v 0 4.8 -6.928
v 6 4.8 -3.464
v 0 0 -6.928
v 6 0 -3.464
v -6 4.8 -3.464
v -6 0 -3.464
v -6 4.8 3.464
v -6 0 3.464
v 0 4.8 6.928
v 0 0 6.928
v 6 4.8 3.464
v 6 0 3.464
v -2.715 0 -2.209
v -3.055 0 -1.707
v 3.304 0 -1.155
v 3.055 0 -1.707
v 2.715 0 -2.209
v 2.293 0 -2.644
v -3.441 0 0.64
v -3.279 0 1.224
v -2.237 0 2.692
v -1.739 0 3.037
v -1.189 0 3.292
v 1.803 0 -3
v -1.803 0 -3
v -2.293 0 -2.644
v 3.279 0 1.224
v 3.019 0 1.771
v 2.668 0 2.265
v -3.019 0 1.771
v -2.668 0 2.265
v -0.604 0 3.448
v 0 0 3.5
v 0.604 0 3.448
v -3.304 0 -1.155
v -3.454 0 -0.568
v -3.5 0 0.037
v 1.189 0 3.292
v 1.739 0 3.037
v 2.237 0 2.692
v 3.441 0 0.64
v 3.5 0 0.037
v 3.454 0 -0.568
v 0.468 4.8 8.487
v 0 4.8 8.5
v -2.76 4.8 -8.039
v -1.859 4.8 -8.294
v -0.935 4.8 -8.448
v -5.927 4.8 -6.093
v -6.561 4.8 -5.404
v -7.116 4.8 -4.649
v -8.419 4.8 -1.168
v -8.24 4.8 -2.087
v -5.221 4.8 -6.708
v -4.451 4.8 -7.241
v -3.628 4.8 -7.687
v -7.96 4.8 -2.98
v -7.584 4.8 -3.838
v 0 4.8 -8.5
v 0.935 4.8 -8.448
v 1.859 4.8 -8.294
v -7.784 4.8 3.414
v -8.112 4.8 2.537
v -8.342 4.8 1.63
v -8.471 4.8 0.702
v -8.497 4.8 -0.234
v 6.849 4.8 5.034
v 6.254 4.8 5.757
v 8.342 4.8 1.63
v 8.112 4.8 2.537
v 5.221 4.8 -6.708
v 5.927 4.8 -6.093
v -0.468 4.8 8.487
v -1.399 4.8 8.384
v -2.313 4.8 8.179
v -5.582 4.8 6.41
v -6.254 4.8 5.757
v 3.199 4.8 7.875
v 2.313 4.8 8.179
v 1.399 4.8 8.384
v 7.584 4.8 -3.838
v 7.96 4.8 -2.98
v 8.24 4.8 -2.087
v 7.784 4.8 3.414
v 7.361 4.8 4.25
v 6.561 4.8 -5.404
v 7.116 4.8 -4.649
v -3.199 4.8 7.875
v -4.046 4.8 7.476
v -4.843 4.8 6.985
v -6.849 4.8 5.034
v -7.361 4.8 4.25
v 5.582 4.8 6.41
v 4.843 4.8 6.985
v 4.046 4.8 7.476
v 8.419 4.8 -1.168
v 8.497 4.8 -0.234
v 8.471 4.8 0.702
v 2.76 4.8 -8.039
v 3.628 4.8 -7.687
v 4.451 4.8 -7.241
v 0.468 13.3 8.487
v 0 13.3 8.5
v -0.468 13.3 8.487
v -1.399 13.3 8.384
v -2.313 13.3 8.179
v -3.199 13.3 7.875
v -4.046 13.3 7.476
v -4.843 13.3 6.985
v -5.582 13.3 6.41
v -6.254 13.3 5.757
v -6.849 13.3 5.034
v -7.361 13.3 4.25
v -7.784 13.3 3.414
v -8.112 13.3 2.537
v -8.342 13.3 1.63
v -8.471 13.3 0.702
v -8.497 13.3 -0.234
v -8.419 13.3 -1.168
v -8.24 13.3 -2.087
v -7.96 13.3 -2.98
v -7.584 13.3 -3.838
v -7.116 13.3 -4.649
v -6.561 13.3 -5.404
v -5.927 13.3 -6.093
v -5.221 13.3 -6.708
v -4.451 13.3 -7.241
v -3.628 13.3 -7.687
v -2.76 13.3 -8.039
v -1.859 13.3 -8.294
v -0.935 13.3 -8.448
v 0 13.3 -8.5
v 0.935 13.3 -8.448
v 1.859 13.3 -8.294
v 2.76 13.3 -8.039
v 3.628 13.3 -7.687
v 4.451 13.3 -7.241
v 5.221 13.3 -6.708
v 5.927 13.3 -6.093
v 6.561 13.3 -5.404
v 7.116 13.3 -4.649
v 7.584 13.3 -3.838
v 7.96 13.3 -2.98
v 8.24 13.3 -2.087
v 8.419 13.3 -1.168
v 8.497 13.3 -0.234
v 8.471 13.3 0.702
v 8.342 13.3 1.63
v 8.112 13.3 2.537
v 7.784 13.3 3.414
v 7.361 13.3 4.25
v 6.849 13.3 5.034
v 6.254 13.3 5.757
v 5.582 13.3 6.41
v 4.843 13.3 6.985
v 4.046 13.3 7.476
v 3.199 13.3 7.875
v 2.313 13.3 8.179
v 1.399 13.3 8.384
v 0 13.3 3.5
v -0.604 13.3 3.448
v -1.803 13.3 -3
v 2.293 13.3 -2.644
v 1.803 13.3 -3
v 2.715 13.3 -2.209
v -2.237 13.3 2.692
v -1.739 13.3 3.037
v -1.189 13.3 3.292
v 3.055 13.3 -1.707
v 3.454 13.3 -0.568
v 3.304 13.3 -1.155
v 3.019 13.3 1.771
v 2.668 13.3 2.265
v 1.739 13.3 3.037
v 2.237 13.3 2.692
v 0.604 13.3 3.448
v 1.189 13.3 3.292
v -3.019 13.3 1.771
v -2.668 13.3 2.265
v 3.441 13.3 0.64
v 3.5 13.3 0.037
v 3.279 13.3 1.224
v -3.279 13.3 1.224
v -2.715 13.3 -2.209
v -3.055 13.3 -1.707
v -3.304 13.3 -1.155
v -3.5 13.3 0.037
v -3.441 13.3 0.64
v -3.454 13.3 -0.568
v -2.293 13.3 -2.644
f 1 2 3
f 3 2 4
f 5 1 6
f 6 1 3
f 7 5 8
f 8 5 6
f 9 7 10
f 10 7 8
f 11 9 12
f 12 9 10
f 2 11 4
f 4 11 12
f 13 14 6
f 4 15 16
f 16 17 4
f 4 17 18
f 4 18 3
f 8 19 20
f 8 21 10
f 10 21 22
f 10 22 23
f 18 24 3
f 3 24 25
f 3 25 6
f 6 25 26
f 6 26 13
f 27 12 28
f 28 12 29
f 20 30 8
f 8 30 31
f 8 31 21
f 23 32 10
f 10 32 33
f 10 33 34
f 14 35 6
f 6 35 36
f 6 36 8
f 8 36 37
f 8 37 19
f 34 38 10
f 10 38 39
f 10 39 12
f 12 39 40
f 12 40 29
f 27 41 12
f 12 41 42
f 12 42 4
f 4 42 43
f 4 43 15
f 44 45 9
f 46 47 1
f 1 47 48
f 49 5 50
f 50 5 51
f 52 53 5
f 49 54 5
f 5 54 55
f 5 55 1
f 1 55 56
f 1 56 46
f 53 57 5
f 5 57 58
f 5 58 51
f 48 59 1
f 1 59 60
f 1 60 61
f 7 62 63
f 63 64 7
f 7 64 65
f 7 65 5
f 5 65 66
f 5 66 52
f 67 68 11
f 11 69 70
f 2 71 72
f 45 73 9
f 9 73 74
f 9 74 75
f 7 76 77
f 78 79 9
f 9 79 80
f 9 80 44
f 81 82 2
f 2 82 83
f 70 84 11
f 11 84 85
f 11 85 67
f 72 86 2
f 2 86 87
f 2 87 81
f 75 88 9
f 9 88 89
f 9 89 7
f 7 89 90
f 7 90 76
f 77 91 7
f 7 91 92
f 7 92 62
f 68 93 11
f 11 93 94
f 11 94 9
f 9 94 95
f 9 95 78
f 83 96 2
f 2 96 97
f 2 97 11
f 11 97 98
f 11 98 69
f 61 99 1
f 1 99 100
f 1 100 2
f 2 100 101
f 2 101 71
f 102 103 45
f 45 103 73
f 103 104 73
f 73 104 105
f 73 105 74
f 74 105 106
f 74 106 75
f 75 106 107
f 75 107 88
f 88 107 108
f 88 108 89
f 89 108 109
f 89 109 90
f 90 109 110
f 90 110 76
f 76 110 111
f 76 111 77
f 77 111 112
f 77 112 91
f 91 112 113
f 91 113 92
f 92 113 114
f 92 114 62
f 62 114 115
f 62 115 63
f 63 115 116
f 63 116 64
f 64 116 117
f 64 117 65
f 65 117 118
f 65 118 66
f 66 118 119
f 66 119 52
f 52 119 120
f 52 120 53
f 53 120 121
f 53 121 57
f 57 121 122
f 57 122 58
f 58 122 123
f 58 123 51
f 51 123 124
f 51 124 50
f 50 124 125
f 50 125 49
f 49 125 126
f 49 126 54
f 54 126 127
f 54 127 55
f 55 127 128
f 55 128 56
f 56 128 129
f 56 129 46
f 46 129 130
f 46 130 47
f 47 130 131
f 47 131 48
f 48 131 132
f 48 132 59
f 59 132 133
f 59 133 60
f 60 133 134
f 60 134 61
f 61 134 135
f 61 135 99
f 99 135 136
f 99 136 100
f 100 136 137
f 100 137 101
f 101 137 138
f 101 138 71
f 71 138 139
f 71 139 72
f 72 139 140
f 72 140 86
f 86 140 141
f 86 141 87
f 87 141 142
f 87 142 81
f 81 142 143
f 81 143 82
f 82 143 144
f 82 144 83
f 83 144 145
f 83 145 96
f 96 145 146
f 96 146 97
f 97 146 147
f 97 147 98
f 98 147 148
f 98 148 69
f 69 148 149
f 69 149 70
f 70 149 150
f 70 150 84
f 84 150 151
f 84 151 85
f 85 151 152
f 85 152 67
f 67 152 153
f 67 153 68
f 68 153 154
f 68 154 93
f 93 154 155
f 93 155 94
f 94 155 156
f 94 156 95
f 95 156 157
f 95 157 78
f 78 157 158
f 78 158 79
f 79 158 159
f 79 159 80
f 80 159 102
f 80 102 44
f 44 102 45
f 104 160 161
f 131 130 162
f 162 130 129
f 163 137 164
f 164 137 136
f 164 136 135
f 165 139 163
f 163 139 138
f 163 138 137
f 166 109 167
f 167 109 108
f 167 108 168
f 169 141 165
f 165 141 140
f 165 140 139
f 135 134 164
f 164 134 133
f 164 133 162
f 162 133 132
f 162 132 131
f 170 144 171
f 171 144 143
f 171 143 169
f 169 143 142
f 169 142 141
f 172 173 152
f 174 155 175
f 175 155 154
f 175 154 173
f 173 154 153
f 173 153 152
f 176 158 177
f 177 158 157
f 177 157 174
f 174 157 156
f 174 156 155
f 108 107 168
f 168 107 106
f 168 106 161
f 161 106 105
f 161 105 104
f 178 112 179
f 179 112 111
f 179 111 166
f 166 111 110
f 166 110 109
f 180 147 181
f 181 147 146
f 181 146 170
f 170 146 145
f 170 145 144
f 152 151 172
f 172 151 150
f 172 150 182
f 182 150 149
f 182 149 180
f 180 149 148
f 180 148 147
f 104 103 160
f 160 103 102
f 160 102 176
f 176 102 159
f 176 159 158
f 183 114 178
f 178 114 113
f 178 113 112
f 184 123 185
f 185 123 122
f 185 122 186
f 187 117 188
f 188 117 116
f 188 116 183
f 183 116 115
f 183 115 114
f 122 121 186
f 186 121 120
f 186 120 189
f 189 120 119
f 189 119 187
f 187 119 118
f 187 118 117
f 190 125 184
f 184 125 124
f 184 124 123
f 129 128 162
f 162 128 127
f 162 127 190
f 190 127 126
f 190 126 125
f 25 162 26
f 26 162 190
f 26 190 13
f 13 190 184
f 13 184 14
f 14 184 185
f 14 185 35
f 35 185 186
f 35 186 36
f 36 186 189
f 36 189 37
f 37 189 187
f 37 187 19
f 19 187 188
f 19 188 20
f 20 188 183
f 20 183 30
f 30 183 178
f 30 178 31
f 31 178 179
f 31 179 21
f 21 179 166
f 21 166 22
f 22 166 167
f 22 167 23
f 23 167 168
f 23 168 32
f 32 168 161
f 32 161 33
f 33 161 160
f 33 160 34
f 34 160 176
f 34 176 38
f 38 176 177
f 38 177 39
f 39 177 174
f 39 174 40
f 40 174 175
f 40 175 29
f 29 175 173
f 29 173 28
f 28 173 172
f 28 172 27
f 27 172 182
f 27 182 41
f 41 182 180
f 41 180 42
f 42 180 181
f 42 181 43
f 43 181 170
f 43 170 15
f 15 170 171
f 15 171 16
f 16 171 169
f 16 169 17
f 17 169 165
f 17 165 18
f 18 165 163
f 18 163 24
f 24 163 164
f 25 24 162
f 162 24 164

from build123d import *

# Parameters (mm, degrees)
BOSS_EXTRUDE1_DEPTH = 4.8
SKETCH2_R           = 8.5
BOSS_EXTRUDE2_DEPTH = 8.5
CUT_EXTRUDE1_DEPTH  = 18.927353402


with BuildPart() as part:
    # Sketch1 → Boss-Extrude1 (new body)
    with BuildSketch(Plane(origin=(0, 0, 0), x_dir=(1, 0, 0), z_dir=(0, 1, 0))):
        Polygon((-6, 3.464101615), (0, 6.92820323), (6, 3.464101615), (6, -3.464101615), (0, -6.92820323), (-6, -3.464101615), align=None)
    extrude(amount=BOSS_EXTRUDE1_DEPTH)

    # Sketch2 → Boss-Extrude2 (add)
    with BuildSketch(Plane(origin=(0, 4.8, 0), x_dir=(1, 0, 0), z_dir=(0, 1, 0))):
        with Locations(Location((0, 0, 0), (0, 0, 270))):
            Circle(SKETCH2_R)
    extrude(amount=BOSS_EXTRUDE2_DEPTH)

    # Sketch3 → Cut-Extrude1 (cut, through all)
    with BuildSketch(Plane(origin=(0, 13.3, 0), x_dir=(1, 0, 0), z_dir=(0, 1, 0))):
        with BuildLine():
            Line((-1.802775638, 3), (1.802775638, 3))
            ThreePointArc((1.802775638, 3), (0, -3.5), (-1.802775638, 3))
        make_face()
    extrude(amount=-CUT_EXTRUDE1_DEPTH, mode=Mode.SUBTRACT)


solid = part.part
